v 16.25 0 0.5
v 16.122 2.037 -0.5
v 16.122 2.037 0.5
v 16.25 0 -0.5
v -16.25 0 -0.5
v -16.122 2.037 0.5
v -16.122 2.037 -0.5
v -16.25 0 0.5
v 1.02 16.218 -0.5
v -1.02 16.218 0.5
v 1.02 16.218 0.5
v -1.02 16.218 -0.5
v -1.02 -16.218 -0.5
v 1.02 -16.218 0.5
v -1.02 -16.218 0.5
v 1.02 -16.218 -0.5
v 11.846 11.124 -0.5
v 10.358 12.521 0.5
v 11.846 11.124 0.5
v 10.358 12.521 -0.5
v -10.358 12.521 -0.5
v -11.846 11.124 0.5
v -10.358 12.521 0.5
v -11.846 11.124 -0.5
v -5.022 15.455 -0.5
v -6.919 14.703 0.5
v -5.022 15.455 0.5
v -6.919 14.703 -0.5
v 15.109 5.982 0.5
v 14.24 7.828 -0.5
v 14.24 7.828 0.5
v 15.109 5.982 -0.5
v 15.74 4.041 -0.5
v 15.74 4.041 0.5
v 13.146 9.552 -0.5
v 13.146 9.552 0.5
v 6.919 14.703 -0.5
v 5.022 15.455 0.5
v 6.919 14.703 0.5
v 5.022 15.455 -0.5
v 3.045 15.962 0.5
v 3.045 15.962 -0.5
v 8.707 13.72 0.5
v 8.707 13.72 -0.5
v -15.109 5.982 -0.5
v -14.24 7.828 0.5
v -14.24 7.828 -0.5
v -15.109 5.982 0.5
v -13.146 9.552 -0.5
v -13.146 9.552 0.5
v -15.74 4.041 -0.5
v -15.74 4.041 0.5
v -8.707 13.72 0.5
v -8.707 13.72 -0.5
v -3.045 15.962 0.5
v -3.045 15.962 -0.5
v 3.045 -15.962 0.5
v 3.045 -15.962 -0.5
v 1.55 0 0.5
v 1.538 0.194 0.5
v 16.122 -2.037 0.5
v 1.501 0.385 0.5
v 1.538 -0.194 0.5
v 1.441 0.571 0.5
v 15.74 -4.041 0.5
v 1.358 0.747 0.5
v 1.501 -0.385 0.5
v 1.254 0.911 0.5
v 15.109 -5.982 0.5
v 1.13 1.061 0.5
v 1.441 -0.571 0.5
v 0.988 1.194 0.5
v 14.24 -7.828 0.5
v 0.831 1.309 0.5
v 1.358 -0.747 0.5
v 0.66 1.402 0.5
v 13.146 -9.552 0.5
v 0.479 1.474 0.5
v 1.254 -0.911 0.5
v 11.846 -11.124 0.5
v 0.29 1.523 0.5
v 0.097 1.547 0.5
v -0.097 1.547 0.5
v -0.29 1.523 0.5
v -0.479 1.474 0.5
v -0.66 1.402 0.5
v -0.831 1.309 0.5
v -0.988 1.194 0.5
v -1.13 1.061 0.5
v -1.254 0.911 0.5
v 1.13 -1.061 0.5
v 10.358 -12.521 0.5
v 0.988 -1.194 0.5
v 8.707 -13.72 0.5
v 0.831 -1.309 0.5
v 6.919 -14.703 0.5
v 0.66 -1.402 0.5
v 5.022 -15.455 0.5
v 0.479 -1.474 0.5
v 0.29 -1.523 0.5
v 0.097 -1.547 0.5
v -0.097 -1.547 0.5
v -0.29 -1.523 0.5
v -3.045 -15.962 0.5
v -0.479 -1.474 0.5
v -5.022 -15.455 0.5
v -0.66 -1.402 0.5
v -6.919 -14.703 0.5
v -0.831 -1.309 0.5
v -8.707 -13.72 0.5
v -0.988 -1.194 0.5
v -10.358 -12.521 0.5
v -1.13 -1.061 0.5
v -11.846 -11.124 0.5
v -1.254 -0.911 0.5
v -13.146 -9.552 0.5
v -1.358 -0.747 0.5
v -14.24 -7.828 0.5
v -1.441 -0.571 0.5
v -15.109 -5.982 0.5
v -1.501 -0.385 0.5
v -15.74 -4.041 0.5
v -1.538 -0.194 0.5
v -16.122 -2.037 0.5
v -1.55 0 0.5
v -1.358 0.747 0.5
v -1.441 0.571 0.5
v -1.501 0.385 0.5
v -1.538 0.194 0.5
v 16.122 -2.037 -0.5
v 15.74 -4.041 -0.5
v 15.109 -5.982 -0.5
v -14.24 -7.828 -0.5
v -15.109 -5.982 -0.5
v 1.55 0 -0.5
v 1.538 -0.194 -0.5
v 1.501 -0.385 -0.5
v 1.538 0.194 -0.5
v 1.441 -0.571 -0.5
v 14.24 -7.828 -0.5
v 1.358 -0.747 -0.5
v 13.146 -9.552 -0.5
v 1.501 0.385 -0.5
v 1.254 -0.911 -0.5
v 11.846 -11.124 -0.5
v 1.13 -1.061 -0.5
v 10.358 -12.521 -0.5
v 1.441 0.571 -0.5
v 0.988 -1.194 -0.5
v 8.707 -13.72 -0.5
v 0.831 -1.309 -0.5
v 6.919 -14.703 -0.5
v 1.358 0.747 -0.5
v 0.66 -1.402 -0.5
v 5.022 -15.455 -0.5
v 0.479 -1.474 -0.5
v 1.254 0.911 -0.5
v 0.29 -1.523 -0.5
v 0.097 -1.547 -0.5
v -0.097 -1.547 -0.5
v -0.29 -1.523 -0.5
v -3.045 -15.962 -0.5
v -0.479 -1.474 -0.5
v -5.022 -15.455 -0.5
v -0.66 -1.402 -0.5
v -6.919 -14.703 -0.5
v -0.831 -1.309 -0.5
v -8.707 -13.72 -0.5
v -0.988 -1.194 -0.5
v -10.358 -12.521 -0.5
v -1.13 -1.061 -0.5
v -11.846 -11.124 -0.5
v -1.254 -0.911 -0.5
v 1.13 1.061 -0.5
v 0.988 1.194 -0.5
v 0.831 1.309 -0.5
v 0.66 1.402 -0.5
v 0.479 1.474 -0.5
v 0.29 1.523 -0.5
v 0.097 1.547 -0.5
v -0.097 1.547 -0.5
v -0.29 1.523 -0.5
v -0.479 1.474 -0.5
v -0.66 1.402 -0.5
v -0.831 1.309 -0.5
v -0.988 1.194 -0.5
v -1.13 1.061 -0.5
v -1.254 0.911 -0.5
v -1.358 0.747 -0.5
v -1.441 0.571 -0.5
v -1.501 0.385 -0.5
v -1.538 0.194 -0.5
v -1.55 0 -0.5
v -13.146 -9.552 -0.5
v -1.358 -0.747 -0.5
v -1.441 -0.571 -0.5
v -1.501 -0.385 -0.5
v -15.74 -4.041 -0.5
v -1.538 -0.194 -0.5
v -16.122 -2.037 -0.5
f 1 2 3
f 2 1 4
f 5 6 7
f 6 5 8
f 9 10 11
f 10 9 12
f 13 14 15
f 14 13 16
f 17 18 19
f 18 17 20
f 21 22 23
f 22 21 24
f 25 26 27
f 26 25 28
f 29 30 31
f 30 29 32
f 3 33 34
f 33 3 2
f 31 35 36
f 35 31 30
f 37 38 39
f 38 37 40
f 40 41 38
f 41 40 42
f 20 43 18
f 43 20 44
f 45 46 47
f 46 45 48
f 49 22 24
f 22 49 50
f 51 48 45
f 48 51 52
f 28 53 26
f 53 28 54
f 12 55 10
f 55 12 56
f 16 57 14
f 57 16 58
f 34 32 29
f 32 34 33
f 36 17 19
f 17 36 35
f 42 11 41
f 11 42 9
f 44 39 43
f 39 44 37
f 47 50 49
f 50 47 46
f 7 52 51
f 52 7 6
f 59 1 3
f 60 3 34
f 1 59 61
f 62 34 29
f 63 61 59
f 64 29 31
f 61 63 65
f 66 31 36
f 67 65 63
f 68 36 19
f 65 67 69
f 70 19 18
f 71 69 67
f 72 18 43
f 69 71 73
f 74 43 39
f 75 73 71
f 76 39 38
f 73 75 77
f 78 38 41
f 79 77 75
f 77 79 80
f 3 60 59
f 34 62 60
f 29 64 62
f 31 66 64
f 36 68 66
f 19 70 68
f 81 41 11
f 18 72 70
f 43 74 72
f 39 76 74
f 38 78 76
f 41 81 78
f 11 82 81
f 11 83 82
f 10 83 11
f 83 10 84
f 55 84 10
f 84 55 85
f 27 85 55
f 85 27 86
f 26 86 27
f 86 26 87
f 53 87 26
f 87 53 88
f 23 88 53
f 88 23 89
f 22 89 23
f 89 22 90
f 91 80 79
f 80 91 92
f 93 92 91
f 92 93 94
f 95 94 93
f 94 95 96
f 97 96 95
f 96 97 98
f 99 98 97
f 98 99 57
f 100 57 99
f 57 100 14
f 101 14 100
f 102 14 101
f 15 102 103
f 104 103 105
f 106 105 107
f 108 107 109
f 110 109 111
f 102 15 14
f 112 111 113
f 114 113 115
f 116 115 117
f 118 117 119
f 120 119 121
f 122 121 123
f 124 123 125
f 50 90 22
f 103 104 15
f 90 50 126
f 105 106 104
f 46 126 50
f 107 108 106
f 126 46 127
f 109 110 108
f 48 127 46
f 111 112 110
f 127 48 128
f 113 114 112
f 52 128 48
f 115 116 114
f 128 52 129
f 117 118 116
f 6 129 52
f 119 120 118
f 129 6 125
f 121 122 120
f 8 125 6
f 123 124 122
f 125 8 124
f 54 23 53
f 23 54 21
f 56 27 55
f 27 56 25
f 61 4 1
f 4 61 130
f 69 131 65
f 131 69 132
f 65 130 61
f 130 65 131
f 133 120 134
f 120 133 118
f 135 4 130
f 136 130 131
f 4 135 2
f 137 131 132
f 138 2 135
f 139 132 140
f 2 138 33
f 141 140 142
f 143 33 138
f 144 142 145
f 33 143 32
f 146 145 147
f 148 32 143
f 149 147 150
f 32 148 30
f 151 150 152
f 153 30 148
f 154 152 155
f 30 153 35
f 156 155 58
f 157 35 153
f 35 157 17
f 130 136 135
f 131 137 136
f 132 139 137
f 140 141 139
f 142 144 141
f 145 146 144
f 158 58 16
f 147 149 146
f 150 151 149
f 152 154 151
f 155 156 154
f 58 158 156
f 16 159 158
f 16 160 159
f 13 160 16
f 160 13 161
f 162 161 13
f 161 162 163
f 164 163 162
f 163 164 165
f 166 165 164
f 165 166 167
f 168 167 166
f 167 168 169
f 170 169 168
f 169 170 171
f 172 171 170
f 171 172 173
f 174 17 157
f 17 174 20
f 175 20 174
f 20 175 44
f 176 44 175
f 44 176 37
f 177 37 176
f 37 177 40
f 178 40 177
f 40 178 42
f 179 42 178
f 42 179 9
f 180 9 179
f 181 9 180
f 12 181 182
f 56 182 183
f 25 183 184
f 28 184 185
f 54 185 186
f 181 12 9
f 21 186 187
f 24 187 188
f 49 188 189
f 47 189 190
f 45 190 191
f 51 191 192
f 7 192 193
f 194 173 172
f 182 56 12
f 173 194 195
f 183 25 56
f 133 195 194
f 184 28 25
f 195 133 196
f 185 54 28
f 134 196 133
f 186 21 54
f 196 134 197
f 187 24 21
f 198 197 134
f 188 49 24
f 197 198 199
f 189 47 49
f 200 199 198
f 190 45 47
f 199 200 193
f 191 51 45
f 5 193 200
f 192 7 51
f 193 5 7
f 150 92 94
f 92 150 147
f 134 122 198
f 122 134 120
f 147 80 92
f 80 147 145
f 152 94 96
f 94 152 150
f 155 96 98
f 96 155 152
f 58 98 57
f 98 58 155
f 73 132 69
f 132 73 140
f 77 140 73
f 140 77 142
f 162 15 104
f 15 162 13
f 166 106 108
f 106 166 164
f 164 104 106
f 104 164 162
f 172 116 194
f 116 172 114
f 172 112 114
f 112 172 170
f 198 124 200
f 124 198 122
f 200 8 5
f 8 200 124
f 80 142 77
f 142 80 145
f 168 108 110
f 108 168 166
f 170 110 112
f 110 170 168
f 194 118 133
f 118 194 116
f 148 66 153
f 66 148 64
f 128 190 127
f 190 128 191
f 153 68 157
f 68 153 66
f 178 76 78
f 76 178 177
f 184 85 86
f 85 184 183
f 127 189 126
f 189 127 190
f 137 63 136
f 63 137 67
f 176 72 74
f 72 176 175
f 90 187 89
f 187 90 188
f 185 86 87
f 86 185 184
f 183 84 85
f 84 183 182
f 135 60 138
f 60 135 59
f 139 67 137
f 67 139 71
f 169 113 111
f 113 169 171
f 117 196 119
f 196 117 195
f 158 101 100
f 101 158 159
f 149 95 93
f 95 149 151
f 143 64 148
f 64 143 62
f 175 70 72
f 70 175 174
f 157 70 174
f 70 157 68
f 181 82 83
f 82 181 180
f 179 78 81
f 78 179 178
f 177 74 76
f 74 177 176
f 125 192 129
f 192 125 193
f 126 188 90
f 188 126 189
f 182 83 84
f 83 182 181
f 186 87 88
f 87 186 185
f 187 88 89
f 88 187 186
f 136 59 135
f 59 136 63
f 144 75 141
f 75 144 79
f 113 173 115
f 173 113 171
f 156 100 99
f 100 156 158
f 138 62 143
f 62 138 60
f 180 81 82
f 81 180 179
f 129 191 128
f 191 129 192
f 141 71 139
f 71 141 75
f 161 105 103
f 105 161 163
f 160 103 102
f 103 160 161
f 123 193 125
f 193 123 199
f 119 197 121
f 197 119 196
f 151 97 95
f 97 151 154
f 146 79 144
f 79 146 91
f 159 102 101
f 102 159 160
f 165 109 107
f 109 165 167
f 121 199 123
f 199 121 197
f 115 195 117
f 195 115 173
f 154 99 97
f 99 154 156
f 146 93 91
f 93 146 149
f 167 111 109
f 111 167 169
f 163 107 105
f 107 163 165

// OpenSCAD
$fn = 50;


difference() {
	union() {
		translate(v = [0, 0, -0.5000000000]) {
			cylinder(h = 1, r = 16.2500000000);
		}
	}
	union() {
		translate(v = [0, 0, -100.0000000000]) {
			cylinder(h = 200, r = 1.5500000000);
		}
	}
}
